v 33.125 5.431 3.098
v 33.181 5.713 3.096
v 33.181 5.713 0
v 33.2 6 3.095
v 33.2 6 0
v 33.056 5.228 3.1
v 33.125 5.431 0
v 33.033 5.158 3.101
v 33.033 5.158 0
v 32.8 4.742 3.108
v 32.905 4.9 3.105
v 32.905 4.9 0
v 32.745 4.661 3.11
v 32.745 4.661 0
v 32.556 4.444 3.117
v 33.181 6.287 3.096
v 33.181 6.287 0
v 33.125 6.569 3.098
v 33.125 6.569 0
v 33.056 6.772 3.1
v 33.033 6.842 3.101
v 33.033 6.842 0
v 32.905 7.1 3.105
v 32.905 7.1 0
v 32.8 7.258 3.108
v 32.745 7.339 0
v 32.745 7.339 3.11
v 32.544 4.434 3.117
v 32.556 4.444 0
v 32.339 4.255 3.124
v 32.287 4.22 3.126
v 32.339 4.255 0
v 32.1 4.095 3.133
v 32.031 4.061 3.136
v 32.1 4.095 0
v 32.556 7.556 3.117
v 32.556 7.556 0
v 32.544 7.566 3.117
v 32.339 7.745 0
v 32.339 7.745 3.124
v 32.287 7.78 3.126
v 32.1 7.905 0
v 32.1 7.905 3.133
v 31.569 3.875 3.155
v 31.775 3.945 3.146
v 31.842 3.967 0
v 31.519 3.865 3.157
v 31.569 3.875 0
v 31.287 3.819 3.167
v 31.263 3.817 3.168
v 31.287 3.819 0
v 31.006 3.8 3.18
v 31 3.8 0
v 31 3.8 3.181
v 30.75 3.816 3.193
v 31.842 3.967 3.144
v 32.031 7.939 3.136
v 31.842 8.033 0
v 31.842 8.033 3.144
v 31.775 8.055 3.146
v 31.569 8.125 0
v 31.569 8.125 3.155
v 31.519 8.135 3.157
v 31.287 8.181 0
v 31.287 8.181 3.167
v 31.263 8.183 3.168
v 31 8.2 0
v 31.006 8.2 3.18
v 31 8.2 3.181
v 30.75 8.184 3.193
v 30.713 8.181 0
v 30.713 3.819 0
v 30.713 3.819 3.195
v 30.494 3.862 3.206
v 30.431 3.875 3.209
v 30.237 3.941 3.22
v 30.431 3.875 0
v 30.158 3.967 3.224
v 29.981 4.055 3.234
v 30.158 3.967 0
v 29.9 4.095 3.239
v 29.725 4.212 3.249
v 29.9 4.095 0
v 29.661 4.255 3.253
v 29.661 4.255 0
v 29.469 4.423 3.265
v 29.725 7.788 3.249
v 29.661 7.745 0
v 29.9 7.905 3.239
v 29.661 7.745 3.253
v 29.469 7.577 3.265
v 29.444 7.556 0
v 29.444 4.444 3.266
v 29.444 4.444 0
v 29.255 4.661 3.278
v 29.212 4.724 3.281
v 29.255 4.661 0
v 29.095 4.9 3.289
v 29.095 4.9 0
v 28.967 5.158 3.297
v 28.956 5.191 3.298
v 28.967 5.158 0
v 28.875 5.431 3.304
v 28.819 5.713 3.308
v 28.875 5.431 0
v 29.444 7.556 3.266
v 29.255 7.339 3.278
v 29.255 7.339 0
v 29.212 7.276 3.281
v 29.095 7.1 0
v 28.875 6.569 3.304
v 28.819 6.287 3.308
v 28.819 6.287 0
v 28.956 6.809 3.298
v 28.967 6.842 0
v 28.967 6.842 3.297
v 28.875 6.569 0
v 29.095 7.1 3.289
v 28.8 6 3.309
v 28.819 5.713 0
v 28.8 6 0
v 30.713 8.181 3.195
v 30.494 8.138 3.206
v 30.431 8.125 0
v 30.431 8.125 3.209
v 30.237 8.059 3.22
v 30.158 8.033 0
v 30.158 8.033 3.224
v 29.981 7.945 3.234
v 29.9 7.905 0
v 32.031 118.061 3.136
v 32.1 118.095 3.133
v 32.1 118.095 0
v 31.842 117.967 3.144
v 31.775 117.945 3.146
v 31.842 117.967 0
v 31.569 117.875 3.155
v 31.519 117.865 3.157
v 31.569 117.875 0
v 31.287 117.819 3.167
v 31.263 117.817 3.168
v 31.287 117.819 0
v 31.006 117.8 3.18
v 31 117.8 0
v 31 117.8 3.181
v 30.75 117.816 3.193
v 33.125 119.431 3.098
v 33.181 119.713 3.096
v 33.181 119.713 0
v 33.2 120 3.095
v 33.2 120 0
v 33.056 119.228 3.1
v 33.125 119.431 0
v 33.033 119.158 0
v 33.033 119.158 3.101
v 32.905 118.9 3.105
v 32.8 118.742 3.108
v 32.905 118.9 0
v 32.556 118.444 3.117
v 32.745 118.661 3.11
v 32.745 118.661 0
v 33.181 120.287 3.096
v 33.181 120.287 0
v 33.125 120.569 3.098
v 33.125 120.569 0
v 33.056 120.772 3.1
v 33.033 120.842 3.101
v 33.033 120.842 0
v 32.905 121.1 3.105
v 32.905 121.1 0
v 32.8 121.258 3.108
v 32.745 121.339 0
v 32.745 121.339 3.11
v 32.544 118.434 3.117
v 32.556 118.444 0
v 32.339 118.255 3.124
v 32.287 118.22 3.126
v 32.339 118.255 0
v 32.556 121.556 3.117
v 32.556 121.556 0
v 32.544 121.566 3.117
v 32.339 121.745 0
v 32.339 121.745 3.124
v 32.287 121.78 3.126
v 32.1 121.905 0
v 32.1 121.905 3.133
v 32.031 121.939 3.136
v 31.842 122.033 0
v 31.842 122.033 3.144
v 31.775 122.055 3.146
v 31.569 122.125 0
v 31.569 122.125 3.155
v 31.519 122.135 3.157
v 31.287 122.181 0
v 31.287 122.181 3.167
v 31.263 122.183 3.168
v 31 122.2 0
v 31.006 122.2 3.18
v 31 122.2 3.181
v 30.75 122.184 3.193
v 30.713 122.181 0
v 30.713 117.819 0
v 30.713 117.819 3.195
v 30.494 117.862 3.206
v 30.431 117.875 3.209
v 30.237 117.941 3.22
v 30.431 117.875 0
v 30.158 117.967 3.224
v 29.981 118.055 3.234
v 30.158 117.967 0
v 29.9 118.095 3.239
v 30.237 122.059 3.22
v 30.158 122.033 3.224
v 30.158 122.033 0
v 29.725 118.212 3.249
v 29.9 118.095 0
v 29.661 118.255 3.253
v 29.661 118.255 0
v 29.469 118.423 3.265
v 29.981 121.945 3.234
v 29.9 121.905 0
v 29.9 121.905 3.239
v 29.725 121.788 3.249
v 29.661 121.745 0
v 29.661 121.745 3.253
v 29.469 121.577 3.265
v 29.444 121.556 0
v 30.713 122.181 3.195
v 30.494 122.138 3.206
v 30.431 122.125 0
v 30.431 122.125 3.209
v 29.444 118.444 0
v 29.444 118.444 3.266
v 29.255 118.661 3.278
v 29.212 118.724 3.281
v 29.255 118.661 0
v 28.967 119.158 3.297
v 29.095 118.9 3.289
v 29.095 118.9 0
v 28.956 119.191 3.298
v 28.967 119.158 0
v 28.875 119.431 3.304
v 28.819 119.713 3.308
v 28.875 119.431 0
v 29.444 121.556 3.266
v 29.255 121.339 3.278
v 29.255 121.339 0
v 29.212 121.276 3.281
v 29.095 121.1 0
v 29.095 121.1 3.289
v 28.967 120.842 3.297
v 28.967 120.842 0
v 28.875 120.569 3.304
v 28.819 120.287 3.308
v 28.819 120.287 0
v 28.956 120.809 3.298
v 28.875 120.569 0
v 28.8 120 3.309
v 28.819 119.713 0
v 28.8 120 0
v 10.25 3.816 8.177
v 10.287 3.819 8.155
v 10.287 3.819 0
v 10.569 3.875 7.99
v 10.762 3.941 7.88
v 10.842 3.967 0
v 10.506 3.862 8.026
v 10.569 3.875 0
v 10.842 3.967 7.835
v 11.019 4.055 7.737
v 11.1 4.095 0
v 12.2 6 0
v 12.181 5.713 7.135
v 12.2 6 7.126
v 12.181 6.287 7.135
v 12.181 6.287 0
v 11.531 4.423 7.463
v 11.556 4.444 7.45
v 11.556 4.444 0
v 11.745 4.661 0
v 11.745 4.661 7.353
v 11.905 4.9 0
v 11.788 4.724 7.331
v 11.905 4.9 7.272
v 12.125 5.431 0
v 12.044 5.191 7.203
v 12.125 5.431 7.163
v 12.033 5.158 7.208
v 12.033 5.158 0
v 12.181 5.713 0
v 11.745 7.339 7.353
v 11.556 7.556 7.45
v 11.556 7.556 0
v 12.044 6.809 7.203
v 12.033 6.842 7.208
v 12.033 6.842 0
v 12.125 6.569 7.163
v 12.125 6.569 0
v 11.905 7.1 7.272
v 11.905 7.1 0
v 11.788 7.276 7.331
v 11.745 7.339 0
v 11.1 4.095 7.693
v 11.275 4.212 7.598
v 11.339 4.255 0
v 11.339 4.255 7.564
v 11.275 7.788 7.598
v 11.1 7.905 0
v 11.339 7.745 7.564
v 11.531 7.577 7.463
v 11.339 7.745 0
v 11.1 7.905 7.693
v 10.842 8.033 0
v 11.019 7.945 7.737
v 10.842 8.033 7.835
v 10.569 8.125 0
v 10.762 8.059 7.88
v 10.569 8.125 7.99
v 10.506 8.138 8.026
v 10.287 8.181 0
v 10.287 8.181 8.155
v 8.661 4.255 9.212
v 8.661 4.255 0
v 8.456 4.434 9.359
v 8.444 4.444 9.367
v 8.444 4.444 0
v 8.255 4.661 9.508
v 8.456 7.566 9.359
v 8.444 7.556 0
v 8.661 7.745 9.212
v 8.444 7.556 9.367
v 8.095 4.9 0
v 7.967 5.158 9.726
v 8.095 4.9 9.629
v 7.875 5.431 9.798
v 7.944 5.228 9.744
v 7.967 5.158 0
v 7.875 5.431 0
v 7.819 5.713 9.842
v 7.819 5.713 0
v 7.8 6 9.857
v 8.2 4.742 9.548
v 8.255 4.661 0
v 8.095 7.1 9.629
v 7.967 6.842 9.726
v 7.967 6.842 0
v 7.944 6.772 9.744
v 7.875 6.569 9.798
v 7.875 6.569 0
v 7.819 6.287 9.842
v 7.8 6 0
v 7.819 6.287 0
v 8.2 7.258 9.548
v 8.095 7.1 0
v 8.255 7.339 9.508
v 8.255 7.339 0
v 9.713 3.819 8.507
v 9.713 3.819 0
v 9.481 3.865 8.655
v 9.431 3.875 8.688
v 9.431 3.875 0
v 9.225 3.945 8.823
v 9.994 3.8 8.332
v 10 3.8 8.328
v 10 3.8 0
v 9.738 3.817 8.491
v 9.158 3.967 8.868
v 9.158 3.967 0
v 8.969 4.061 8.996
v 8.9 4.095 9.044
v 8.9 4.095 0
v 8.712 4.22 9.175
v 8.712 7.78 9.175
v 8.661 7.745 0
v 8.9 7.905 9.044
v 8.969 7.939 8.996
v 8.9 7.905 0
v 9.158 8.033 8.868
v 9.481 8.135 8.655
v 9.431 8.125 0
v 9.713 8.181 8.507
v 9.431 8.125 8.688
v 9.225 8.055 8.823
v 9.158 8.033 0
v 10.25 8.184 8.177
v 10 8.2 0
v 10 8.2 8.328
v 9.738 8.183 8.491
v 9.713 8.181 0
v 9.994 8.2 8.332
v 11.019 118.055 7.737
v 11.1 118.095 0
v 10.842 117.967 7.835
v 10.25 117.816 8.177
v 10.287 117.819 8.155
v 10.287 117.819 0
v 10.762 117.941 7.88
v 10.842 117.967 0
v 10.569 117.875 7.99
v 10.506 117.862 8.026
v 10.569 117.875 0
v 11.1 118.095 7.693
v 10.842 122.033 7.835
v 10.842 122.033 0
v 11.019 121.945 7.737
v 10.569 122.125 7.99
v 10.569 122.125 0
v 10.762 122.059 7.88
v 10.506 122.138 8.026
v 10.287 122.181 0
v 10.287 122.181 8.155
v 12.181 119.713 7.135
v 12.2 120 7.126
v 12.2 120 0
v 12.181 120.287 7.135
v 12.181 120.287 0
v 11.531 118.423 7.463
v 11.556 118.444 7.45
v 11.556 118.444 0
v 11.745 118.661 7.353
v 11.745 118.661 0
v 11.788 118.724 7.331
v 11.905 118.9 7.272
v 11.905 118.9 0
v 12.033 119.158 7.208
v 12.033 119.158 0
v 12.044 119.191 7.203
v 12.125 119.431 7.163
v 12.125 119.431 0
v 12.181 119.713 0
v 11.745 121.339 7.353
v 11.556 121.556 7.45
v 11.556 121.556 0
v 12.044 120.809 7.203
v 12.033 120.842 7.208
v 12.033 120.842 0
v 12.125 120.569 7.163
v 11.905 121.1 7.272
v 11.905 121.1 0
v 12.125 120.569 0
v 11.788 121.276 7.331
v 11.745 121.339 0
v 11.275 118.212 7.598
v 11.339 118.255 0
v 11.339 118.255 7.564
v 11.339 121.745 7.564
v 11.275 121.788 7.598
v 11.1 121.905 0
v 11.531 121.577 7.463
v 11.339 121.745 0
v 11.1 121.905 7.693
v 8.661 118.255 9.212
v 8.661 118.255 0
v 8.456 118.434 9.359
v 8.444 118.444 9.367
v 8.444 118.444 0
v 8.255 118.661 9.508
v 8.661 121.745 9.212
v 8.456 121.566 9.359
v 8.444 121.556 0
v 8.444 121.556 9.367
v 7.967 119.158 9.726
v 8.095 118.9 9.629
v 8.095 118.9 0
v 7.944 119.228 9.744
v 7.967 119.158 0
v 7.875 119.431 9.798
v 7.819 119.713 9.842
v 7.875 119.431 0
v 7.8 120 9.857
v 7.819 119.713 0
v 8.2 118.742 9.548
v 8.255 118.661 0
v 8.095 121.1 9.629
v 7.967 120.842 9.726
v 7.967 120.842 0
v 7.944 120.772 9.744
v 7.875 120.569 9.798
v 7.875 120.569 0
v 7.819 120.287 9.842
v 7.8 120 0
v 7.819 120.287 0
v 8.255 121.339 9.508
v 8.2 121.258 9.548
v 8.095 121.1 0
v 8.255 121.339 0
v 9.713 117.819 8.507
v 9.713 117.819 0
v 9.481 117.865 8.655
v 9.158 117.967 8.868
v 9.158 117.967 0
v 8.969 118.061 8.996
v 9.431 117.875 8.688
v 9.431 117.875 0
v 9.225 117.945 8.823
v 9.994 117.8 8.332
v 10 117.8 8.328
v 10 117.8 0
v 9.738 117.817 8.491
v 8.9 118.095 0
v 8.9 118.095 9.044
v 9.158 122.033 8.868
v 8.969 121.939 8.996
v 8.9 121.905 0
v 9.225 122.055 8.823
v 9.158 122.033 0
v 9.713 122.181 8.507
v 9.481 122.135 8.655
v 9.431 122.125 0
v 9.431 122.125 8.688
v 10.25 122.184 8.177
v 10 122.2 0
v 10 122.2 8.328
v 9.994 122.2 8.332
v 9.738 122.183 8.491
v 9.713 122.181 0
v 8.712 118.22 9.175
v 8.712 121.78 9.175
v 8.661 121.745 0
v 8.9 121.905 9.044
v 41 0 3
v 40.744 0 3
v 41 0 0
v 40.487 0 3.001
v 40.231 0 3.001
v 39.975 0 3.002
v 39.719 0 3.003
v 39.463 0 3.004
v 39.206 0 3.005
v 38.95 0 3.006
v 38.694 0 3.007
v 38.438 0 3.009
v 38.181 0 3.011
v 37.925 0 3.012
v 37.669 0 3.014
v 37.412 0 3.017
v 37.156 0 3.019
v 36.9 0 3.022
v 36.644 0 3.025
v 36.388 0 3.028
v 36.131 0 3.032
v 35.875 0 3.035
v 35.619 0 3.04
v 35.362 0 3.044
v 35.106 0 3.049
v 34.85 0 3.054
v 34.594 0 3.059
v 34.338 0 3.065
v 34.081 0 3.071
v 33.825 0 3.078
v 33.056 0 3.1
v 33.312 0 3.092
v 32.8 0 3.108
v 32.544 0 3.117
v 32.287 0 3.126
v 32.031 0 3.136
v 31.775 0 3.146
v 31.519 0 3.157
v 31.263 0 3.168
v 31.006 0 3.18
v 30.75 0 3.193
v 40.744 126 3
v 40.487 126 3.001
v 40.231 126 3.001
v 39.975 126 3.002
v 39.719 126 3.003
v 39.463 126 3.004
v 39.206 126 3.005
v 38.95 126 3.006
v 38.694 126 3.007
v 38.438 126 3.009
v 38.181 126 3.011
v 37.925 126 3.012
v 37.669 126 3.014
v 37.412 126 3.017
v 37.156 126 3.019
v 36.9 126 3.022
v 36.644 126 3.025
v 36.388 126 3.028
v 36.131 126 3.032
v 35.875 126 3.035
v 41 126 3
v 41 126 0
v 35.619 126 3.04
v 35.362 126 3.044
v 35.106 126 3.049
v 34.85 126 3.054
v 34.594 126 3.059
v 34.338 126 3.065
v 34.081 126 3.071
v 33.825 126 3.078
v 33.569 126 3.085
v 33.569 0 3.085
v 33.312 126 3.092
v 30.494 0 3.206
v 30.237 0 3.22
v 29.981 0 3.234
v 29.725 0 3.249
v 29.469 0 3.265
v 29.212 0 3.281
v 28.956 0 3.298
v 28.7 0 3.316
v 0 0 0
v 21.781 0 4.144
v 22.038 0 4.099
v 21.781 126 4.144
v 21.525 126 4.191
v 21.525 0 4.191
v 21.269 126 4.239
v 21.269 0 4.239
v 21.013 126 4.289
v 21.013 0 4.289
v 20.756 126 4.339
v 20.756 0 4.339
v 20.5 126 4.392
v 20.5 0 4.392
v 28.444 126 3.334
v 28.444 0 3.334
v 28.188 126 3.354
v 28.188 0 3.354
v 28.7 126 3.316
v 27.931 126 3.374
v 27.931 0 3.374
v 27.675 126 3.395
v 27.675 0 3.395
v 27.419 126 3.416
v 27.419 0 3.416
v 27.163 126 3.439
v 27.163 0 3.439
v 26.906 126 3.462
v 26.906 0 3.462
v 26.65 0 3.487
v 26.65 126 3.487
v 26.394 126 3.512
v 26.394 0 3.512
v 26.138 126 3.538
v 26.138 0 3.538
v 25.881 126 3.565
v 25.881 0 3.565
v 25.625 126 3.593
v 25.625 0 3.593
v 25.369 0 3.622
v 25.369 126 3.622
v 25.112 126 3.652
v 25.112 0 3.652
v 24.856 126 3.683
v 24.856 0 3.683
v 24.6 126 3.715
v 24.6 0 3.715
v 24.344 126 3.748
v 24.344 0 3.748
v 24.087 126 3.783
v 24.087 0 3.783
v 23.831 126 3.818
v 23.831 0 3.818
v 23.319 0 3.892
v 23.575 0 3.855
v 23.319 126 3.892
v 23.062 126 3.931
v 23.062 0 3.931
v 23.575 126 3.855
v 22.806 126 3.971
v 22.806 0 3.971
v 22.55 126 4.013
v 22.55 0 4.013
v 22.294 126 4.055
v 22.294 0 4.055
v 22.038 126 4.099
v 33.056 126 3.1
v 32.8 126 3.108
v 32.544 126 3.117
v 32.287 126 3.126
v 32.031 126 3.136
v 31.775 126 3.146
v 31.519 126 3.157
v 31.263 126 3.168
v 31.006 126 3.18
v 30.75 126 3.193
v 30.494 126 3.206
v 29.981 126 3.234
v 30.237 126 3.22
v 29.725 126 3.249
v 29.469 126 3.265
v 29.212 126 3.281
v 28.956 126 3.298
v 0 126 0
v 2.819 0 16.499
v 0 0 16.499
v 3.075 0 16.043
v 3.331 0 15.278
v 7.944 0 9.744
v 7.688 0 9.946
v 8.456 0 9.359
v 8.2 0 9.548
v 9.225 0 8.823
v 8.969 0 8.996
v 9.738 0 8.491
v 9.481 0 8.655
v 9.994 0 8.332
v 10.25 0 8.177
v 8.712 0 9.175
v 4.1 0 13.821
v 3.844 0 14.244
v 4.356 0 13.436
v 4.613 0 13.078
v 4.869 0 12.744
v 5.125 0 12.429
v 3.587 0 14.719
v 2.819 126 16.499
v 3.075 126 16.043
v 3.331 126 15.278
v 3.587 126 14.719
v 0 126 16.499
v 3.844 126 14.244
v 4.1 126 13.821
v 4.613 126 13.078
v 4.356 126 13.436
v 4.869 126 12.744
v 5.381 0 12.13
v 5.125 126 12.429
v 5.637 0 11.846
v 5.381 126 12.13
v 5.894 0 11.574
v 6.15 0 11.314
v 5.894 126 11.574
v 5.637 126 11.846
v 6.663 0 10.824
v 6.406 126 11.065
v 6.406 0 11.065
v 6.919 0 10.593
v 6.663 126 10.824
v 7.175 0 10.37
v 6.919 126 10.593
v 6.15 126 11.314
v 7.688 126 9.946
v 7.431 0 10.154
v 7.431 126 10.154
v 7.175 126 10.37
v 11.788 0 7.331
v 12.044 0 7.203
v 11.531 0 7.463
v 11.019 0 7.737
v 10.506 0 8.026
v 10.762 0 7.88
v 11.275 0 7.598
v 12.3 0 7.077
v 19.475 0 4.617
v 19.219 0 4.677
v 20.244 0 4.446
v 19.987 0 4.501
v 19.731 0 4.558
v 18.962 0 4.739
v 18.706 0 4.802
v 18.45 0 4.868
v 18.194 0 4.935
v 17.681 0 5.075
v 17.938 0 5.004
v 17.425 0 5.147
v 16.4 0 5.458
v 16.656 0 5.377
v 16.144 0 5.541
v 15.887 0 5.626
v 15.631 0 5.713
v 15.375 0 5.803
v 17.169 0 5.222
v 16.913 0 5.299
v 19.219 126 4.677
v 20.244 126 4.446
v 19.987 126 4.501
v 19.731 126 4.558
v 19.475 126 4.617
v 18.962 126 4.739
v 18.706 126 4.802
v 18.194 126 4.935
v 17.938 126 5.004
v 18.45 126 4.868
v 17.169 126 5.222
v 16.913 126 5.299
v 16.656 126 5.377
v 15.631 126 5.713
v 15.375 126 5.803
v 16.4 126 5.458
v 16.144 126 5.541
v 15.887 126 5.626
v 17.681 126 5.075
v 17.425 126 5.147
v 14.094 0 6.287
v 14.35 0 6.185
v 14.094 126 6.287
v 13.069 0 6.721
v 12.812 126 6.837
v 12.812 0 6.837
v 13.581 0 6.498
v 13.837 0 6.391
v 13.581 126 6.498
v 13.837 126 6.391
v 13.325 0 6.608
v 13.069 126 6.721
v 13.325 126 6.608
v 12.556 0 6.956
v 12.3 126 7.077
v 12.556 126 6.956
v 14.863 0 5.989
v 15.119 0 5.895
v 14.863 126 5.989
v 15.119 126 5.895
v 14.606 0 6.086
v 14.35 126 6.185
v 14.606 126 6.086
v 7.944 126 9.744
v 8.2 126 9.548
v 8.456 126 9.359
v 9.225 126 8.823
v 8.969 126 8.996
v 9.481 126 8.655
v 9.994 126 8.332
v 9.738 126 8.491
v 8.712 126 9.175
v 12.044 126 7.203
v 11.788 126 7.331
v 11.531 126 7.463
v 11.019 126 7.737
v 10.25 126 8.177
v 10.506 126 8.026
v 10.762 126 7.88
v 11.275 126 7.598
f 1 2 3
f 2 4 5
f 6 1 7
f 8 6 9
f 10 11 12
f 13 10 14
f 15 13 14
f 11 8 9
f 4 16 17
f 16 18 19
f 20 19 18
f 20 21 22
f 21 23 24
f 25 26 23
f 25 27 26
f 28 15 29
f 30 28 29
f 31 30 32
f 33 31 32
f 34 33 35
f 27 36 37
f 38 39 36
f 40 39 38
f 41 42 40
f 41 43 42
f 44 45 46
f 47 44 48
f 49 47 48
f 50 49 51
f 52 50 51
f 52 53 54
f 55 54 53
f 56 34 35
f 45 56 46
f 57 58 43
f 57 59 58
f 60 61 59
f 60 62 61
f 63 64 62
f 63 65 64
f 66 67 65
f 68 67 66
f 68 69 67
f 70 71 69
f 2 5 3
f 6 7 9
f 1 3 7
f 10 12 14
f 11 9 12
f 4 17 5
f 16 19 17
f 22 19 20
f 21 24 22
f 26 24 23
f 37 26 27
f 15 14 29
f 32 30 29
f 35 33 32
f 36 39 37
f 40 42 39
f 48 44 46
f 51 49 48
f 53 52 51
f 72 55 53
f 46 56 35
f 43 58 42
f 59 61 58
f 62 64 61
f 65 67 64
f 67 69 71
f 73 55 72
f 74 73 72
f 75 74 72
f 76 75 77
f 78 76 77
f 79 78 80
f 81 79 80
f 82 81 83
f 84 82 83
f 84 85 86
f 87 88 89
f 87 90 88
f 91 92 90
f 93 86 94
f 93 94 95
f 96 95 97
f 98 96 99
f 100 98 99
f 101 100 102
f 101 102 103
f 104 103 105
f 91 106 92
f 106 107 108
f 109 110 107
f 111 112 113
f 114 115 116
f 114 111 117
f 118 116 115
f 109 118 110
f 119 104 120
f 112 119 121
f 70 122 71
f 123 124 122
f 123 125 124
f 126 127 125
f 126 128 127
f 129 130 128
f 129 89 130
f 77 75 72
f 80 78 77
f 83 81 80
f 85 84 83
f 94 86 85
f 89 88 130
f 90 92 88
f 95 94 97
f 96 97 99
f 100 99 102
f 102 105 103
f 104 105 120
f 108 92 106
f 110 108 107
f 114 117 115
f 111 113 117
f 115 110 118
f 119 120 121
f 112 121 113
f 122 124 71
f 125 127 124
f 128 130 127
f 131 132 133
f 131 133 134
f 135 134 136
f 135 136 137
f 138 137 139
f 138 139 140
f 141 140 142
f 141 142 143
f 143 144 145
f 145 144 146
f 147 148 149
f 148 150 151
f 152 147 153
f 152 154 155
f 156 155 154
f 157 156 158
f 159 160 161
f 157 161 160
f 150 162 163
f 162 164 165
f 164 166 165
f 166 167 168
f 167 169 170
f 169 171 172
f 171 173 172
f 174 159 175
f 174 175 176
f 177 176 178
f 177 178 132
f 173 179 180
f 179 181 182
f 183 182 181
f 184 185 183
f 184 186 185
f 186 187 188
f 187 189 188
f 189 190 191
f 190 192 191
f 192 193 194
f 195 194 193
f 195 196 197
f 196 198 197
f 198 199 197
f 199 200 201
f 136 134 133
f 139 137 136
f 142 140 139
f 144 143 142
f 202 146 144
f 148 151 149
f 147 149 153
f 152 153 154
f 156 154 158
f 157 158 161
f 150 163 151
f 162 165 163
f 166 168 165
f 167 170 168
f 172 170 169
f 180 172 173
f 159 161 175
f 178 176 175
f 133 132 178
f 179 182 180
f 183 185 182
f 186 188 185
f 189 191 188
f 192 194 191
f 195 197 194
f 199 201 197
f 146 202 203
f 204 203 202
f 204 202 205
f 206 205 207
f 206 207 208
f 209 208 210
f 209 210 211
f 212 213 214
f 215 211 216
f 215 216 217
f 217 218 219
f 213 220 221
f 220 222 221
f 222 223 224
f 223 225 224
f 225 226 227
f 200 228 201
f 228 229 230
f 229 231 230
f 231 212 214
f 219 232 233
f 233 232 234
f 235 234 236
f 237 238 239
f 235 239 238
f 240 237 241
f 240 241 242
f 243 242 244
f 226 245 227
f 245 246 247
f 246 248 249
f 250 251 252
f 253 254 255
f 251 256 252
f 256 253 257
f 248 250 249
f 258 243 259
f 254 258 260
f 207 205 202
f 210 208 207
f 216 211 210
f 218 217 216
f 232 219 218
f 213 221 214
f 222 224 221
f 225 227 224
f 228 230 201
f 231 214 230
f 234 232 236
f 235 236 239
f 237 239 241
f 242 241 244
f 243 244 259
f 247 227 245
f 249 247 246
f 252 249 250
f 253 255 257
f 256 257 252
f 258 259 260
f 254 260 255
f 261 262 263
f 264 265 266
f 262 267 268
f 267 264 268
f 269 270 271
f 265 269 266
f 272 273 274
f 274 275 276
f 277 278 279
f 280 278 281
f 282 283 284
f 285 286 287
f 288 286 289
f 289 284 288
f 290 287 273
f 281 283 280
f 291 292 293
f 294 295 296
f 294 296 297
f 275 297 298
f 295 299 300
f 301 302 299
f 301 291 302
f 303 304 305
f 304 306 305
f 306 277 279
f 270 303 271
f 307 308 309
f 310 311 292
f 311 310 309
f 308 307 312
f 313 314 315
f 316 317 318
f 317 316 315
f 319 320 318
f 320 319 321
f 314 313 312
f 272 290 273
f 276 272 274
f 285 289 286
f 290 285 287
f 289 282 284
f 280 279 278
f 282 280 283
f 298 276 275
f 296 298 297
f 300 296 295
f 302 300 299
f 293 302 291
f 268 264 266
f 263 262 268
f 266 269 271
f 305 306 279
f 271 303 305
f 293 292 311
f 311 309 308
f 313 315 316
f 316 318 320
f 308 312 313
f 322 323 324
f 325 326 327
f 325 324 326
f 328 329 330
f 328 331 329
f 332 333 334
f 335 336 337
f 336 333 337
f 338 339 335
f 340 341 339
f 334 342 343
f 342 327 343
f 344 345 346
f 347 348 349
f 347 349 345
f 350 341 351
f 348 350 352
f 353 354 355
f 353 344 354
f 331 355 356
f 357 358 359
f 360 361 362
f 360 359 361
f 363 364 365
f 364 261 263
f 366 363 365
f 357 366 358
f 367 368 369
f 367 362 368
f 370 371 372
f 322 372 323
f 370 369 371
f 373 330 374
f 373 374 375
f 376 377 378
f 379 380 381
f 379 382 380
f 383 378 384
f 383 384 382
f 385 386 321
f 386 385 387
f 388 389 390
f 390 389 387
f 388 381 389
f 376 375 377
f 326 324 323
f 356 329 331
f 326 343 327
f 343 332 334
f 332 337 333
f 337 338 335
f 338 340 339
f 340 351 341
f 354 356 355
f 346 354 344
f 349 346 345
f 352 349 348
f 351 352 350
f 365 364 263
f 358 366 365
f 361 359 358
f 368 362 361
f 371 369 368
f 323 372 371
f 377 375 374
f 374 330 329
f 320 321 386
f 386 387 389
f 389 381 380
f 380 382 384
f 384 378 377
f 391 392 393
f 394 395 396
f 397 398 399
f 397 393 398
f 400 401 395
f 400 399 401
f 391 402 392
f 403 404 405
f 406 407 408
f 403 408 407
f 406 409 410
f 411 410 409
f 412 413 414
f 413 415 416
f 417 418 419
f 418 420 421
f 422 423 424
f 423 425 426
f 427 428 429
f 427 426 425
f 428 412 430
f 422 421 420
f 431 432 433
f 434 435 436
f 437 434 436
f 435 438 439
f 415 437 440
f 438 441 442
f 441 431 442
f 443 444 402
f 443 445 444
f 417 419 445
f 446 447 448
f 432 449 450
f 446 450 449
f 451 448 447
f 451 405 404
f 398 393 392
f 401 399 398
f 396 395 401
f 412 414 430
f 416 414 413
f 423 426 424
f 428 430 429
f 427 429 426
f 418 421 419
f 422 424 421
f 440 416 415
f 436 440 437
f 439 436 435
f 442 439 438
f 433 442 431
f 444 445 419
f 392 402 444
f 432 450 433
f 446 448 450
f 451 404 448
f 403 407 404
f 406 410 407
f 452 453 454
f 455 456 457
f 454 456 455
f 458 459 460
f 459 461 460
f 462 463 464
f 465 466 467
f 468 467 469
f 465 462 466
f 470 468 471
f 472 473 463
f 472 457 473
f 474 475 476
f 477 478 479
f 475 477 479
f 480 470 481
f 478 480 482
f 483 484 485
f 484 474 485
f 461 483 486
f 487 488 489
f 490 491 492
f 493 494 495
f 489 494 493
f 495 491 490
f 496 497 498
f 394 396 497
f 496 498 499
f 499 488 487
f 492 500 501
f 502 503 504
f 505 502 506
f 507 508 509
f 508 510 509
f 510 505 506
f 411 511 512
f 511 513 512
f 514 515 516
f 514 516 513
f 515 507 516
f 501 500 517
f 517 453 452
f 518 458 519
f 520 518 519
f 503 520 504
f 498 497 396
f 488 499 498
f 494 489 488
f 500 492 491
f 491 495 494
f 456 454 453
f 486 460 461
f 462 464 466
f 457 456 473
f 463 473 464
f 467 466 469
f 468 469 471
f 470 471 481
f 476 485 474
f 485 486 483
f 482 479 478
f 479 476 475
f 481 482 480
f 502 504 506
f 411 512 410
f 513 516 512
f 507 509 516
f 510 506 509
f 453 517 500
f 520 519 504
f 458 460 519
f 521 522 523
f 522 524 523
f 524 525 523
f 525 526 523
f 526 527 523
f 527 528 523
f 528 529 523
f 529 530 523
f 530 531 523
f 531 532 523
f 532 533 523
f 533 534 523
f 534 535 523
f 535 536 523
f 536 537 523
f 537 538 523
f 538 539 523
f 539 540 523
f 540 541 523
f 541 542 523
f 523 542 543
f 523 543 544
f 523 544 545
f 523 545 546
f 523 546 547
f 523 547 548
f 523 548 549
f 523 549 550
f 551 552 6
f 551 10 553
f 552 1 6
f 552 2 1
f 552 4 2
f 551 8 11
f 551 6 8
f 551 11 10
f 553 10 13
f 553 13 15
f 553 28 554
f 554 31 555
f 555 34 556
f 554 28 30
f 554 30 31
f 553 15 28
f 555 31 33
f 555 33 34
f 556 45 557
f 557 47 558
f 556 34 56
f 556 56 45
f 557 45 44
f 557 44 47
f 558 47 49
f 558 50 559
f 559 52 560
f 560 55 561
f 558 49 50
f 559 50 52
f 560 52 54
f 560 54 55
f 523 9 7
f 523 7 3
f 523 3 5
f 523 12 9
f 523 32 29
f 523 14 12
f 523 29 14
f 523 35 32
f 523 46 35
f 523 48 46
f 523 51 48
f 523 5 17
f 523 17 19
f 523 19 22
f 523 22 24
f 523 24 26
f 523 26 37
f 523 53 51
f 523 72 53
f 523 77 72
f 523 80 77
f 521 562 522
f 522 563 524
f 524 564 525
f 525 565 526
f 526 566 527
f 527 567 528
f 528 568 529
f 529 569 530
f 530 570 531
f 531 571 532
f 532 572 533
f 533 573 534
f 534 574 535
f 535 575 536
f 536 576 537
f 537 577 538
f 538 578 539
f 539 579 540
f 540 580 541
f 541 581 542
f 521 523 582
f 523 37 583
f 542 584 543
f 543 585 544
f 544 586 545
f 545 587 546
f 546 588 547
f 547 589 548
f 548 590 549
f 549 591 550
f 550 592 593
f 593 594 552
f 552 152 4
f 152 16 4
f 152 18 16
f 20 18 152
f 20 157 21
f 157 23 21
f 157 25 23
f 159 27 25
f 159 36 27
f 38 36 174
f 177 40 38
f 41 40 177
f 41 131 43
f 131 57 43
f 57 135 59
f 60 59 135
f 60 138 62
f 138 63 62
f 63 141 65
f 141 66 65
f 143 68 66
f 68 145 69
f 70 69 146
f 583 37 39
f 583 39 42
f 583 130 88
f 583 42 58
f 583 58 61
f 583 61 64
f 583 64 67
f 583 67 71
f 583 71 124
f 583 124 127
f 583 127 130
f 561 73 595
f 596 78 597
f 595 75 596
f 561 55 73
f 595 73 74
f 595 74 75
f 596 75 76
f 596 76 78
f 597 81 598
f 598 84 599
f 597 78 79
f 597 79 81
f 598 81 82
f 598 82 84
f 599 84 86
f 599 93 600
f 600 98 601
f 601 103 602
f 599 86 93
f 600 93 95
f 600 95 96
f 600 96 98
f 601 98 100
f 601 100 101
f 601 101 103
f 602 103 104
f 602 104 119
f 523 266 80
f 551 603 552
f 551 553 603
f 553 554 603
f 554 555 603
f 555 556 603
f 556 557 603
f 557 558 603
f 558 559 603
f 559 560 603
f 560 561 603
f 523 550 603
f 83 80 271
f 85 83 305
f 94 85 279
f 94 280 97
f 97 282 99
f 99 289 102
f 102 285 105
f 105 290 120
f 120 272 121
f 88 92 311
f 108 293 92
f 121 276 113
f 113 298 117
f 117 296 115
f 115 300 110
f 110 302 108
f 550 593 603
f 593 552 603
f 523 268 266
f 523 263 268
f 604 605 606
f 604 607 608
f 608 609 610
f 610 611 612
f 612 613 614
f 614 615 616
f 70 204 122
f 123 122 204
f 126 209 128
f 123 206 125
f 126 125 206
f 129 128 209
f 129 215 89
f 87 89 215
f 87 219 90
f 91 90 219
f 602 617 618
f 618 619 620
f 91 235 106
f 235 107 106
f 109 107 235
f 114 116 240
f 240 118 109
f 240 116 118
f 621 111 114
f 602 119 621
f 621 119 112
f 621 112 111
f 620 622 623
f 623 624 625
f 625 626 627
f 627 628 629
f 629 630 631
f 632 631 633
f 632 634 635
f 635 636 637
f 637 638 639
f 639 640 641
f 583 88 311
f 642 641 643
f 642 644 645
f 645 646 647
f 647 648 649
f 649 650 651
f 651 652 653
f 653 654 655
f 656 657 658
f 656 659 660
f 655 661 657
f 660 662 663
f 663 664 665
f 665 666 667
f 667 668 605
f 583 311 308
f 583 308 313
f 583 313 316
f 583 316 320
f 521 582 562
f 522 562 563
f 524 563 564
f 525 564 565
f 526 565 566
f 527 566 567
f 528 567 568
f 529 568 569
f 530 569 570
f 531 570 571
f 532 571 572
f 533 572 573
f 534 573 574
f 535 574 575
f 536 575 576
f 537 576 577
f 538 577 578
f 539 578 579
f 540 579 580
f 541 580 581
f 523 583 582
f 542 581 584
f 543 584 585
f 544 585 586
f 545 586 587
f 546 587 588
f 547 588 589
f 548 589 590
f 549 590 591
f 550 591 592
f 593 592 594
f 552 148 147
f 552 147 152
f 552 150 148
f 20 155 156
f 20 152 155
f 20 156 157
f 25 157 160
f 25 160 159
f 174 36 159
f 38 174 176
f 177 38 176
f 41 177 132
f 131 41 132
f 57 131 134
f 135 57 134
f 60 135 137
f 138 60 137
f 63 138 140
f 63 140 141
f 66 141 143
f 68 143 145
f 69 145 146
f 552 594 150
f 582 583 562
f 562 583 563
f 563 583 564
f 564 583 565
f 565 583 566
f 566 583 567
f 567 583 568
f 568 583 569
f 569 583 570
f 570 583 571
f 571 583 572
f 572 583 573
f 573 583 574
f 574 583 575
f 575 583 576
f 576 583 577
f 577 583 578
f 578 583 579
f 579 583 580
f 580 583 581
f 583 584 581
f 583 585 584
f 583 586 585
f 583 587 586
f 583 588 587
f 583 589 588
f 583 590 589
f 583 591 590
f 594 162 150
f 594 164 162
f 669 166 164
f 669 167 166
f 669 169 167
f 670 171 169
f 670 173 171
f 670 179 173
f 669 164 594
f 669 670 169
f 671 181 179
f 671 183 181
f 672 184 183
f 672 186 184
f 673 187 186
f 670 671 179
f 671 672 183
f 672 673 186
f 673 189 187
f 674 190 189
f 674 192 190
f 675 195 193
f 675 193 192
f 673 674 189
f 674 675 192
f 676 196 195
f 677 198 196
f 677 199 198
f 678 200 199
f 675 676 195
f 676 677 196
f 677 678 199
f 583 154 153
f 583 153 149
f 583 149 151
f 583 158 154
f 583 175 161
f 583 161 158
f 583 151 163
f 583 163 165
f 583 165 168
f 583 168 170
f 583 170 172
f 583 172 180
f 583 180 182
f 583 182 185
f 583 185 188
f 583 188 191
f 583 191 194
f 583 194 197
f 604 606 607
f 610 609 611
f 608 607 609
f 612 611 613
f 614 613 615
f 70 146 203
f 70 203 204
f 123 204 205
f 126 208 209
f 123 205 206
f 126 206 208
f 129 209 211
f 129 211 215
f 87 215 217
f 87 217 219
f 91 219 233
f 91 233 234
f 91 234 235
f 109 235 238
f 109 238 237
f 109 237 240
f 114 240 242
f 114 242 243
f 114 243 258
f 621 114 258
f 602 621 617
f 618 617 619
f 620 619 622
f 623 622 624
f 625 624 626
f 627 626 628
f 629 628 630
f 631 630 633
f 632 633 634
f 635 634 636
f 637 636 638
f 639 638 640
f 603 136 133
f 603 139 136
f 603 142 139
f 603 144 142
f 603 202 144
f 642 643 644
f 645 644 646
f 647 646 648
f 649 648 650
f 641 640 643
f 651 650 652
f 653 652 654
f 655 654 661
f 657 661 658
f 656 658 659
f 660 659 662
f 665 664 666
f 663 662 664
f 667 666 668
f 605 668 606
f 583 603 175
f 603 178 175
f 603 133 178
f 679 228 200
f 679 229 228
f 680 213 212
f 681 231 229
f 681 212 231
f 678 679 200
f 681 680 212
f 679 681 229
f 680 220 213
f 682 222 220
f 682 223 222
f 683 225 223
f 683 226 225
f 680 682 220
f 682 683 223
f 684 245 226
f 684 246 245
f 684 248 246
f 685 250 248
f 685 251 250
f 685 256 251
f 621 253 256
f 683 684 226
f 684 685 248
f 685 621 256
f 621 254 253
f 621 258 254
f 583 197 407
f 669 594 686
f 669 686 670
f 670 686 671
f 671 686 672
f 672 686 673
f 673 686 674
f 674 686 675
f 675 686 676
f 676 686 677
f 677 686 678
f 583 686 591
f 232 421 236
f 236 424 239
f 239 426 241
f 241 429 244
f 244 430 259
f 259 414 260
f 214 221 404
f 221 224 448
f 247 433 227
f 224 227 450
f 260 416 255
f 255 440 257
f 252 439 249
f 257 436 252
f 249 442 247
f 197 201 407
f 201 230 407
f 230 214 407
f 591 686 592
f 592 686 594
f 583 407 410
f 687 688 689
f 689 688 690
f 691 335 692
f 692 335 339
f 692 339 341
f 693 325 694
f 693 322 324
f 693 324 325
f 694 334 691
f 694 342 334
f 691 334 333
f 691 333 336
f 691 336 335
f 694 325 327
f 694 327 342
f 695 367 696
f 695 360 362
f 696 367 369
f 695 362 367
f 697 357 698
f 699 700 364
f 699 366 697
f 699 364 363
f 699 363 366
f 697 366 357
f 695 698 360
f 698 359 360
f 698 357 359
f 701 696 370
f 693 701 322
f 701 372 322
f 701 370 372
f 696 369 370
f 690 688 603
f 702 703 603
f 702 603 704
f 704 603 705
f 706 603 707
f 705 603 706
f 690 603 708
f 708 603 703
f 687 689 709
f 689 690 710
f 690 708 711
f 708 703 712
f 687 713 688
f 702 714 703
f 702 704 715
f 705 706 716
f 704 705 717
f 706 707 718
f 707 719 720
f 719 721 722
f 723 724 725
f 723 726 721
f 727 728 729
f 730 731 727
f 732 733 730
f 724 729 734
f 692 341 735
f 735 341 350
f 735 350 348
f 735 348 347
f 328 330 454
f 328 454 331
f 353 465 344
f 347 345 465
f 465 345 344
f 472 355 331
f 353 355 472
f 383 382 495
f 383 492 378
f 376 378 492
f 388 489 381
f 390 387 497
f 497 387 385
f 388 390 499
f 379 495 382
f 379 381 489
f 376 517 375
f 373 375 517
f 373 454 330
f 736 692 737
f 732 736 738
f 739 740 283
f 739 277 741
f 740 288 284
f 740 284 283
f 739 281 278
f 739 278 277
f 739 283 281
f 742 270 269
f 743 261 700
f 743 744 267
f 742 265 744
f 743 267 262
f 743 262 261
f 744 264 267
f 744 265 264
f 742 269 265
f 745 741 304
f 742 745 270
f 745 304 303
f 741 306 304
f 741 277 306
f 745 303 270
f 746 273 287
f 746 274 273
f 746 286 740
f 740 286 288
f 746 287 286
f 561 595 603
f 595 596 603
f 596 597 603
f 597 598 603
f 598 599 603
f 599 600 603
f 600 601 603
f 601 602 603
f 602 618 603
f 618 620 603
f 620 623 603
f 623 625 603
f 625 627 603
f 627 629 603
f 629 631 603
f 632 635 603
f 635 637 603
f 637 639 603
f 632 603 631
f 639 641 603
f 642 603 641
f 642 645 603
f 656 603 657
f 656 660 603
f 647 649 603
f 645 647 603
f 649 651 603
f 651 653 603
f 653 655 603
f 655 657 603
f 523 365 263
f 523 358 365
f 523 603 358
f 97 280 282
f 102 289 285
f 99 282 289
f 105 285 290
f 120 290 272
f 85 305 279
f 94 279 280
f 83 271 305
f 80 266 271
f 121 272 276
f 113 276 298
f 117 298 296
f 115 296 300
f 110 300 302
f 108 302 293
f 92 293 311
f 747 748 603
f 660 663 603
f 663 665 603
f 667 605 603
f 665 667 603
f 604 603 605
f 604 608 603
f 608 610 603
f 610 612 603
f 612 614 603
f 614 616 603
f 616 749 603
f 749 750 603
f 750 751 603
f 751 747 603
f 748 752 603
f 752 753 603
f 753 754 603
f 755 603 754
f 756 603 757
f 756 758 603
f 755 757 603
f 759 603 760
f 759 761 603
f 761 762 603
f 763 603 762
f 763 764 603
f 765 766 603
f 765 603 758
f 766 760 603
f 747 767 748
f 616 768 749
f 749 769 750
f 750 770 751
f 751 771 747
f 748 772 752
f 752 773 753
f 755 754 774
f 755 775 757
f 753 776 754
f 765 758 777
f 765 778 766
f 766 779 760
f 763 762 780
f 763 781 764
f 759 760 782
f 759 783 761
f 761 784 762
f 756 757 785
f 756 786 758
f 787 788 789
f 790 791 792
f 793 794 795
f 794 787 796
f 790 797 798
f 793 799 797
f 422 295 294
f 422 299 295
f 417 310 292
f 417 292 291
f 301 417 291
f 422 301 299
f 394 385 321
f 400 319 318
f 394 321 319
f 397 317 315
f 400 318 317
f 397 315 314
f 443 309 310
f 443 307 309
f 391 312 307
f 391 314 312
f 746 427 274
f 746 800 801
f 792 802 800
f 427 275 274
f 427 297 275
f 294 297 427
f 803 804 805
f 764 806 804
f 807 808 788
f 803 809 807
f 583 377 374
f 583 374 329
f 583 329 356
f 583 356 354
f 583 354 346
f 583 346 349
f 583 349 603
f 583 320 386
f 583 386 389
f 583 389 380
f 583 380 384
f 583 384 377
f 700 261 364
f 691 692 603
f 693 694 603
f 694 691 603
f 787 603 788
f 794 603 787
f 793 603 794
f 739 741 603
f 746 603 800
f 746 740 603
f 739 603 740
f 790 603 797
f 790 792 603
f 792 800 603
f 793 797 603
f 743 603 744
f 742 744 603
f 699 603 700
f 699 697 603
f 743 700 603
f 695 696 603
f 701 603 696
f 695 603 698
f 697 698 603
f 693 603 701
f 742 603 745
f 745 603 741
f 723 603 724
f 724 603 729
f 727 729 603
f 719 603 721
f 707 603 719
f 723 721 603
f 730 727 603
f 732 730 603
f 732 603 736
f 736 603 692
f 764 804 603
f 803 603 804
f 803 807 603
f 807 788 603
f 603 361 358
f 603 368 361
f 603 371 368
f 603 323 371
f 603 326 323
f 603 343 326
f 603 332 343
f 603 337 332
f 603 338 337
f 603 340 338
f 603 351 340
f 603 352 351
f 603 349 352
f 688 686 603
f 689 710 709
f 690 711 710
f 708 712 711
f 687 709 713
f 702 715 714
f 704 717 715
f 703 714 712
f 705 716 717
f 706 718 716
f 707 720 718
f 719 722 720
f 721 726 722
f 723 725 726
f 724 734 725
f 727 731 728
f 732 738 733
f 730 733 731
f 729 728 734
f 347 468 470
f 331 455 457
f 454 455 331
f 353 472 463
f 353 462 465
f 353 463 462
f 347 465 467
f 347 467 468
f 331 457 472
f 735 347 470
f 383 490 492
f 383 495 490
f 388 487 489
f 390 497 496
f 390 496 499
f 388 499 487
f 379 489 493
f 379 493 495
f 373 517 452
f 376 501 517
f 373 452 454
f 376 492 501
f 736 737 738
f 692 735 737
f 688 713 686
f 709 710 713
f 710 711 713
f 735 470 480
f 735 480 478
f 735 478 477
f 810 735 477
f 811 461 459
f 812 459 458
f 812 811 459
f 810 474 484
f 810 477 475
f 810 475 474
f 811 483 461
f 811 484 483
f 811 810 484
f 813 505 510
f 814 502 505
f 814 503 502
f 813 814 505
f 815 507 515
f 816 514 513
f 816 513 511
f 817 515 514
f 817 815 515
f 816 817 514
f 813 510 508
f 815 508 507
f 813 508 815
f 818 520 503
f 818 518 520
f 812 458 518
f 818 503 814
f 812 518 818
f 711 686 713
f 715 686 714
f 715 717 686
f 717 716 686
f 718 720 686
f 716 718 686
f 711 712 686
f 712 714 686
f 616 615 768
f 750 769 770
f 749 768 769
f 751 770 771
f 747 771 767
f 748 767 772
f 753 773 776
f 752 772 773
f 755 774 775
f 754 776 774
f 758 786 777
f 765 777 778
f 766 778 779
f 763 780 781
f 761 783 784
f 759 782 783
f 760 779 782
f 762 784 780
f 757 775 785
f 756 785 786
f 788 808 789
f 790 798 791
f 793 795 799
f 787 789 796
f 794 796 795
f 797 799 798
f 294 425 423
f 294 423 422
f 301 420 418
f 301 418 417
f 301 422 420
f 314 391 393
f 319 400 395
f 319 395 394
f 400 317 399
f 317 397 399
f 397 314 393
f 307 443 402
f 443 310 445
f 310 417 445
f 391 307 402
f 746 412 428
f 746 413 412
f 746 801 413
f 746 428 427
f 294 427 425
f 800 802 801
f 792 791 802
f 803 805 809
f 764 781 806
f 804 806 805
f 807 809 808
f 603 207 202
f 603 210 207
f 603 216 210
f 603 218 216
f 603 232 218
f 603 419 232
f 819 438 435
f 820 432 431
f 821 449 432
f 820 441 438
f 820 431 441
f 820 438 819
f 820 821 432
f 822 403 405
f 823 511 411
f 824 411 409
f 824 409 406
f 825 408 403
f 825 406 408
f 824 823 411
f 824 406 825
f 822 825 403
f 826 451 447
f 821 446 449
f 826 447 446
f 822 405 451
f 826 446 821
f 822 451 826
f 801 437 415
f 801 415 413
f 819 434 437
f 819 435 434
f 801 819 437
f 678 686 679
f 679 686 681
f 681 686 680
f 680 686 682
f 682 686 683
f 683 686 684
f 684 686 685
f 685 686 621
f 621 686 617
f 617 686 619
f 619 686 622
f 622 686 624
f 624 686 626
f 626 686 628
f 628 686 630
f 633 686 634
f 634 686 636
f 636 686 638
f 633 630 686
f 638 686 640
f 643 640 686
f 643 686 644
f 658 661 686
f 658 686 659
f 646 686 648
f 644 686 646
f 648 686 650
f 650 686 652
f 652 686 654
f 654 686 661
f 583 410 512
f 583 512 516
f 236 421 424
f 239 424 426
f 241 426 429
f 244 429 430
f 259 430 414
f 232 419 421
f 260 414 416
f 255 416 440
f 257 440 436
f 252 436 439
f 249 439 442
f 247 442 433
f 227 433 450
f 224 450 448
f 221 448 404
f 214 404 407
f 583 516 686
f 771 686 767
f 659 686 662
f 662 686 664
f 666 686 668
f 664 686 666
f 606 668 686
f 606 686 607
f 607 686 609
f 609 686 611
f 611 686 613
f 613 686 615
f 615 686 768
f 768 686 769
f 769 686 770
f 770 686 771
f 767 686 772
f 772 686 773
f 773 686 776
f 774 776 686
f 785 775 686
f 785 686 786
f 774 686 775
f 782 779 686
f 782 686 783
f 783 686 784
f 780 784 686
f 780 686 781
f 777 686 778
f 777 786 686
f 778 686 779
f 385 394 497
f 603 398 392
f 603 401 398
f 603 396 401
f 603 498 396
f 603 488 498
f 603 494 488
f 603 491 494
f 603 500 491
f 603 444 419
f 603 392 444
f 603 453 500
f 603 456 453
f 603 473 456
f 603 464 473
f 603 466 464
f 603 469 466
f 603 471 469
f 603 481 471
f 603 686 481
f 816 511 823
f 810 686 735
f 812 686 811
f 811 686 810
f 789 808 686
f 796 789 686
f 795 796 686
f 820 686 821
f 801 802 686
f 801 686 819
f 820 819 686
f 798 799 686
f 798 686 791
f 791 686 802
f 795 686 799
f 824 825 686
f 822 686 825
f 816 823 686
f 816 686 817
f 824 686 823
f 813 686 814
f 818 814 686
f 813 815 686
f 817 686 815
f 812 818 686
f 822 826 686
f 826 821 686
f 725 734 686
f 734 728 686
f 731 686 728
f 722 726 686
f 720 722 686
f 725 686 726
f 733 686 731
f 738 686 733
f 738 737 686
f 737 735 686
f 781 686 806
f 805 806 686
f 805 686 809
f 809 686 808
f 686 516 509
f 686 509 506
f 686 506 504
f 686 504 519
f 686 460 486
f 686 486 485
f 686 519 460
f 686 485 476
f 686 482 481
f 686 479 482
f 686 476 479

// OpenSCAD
// door-closer-casing-plate.scad
//
// A saddle that sits on a sloped, bullnosed door casing and gives a
// spring-loaded door closer a flat face to screw to. The closer's base is
// 32.5 x 126 with a 4 mm hole in each corner (Ziad, 2026-09-25). The
// holes' inside edges are 17 apart across the width and 110 along it,
// miked, which replaces the 3.5 from the sides and 4 from the ends first
// given. Its screws go
// through the closer, through this plate, and into the casing, so the
// plate carries matching holes and
// nothing else — screws need to be longer by the plate's thickness.
//
// THE CASING (Ziad, 2026-09-25): 41 wide, 13.5 proud of the wall at its
// thickest, the outside edge. It slopes gradually in for about 75 % of the
// width and then rounds down to nothing at the door-side edge.
//
// casing_a and casing_b were fitted to a photo of coupon 9 on the casing
// (2026-09-25), its air gap scaled against the coupon's own width — up to
// 2.8 mm near the round, none past 21 mm from the door-side edge — and
// coupon 10, cut from that fit, sat perfectly (Ziad, 2026-09-25).
// ⚠️ ASSUMED: the hole offsets are to hole centres, not hole edges.
// THE PLATE SPANS THE WHOLE CASING, so the underside wraps the bullnose as
// well as the slope (Ziad, 2026-09-25: the first draft stopped at the
// closer's 32.5 and caught only the start of the round). Where the casing
// rounds down to nothing the plate comes down to the wall.
// ⚠️ ASSUMED: the closer is centred across the casing (closer_x0) and its
// face stands parallel to the wall.
//
// Axes, installed: X across the casing, 0 at the outside edge and rising
// toward the door; Y along the casing; Z out of the wall. The underside is
// the casing's profile; the top is flat, plate_min_t above the casing's
// highest point under the plate. flip turns it top-down for printing, so
// the saddle faces up and nothing overhangs.
//
// THE COUPON is a coupon_l slice of the plate, with one pair of holes
// centred along its length: enough to press onto the casing and see whether the underside
// meets the slope and the round, and whether the holes land across it.
//
// COUPON-COMPONENTS: fit=coupon
// COUPON-PLATE: coupon

/* [Casing] */
casing_w      = 41;    // mm, full width of the casing face
casing_max_h  = 13.5;  // mm, thickness at the outside edge
casing_a      = 3.4;   // exponent across the width: higher keeps the face flatter for longer
casing_b      = 1.5;   // exponent through the thickness: above 1 the face ends vertical at the door-side edge

/* [Closer] */
closer_w      = 32.5;  // mm, base width (across the casing)
closer_l      = 126;   // mm, base length (along the casing)
hole_d        = 4;     // mm, device hole diameter
hole_len_gap  = 110;   // mm, clear gap between the device holes' inside edges along the length, miked (Ziad, 2026-09-25)
hole_end      = (closer_l - hole_len_gap - hole_d) / 2; // mm, hole centre from each end
hole_gap      = 17;    // mm, clear gap between the device holes' inside edges across the width, miked (Ziad, 2026-09-25)
hole_side     = (closer_w - hole_gap - hole_d) / 2; // mm, hole centre from each side

/* [Plate] */
plate_w       = casing_w; // mm, plate width across the casing, from its outside edge
casing_x0     = -3;    // mm, casing's outside edge from the plate's; negative leaves a ledge on the wall past the door-side edge
closer_x0     = (casing_w - closer_w) / 2; // mm, closer's outside edge from the casing's ⚠️ assumed
plate_min_t   = 3;     // mm, thickness at the thinnest point
plate_hole_d  = 4.4;   // mm, through-hole: device hole plus clearance

/* [Output] */
show = "part";         // [part, coupon]
coupon_label = "";     // text sunk into the coupon's top face, to tell coupons apart
label_size = 4;        // mm, label text height
label_depth = 0.6;     // mm, label deboss depth
coupon_l = 10;         // mm, length of the coupon slice along the casing
flip = true;           // print orientation: top face on the bed

$fn = 48;
eps = 0.01;
profile_steps = 160;   // segments across the plate's underside

// The casing face is one smooth curve, h = max_h * (1 - (x/w)^a)^(1/b):
// flat at the outside edge and steepening all the way to vertical at the
// door-side edge, with no straight run and no handover between a slope and
// a round (Ziad, 2026-09-25: "curved the whole way ever so slightly";
// then "smooth that curve out a bit", after a two-curve blend left a
// visible transition).
function face_h(x) = casing_max_h * pow(max(0, 1 - pow(x / casing_w, casing_a)), 1 / casing_b);

// Casing thickness at x, 0 beyond the door-side edge.
function casing_h(px) = let (x = px - casing_x0)
    x <= 0        ? casing_max_h :
    x <  casing_w ? face_h(x) :
    0;

plate_x0 = 0;
plate_x1 = plate_w;
top_z = max([for (i = [0 : profile_steps]) casing_h(plate_w * i / profile_steps)]) + plate_min_t;

// Cross-section in XZ, extruded along Y.
module plate_section() {
    underside = [for (i = [profile_steps : -1 : 0])
        let (x = plate_w * i / profile_steps) [x, casing_h(x)]];
    polygon(concat([[plate_x0, top_z], [plate_x1, top_z]], underside));
}

module plate(len = closer_l) {
    difference() {
        rotate([90, 0, 0]) translate([0, 0, -len])
            linear_extrude(len, convexity = 4) plate_section();
        for (x = [closer_x0 + hole_side, closer_x0 + closer_w - hole_side],
             y = len < closer_l ? [len / 2] : [hole_end, closer_l - hole_end])
            translate([x, y, -eps]) cylinder(d = plate_hole_d, h = top_z + 2 * eps);
        if (len < closer_l && coupon_label != "")
            translate([plate_w / 2, len / 2, top_z - label_depth])
                linear_extrude(label_depth + eps)
                    text(coupon_label, size = label_size, font = "Liberation Sans:style=Bold",
                         halign = "center", valign = "center");
    }
}

len = show == "coupon" ? coupon_l : closer_l;
if (flip) translate([0, 0, top_z]) rotate([0, 180, 0]) translate([-plate_x1, 0, 0]) plate(len);
else plate(len);
